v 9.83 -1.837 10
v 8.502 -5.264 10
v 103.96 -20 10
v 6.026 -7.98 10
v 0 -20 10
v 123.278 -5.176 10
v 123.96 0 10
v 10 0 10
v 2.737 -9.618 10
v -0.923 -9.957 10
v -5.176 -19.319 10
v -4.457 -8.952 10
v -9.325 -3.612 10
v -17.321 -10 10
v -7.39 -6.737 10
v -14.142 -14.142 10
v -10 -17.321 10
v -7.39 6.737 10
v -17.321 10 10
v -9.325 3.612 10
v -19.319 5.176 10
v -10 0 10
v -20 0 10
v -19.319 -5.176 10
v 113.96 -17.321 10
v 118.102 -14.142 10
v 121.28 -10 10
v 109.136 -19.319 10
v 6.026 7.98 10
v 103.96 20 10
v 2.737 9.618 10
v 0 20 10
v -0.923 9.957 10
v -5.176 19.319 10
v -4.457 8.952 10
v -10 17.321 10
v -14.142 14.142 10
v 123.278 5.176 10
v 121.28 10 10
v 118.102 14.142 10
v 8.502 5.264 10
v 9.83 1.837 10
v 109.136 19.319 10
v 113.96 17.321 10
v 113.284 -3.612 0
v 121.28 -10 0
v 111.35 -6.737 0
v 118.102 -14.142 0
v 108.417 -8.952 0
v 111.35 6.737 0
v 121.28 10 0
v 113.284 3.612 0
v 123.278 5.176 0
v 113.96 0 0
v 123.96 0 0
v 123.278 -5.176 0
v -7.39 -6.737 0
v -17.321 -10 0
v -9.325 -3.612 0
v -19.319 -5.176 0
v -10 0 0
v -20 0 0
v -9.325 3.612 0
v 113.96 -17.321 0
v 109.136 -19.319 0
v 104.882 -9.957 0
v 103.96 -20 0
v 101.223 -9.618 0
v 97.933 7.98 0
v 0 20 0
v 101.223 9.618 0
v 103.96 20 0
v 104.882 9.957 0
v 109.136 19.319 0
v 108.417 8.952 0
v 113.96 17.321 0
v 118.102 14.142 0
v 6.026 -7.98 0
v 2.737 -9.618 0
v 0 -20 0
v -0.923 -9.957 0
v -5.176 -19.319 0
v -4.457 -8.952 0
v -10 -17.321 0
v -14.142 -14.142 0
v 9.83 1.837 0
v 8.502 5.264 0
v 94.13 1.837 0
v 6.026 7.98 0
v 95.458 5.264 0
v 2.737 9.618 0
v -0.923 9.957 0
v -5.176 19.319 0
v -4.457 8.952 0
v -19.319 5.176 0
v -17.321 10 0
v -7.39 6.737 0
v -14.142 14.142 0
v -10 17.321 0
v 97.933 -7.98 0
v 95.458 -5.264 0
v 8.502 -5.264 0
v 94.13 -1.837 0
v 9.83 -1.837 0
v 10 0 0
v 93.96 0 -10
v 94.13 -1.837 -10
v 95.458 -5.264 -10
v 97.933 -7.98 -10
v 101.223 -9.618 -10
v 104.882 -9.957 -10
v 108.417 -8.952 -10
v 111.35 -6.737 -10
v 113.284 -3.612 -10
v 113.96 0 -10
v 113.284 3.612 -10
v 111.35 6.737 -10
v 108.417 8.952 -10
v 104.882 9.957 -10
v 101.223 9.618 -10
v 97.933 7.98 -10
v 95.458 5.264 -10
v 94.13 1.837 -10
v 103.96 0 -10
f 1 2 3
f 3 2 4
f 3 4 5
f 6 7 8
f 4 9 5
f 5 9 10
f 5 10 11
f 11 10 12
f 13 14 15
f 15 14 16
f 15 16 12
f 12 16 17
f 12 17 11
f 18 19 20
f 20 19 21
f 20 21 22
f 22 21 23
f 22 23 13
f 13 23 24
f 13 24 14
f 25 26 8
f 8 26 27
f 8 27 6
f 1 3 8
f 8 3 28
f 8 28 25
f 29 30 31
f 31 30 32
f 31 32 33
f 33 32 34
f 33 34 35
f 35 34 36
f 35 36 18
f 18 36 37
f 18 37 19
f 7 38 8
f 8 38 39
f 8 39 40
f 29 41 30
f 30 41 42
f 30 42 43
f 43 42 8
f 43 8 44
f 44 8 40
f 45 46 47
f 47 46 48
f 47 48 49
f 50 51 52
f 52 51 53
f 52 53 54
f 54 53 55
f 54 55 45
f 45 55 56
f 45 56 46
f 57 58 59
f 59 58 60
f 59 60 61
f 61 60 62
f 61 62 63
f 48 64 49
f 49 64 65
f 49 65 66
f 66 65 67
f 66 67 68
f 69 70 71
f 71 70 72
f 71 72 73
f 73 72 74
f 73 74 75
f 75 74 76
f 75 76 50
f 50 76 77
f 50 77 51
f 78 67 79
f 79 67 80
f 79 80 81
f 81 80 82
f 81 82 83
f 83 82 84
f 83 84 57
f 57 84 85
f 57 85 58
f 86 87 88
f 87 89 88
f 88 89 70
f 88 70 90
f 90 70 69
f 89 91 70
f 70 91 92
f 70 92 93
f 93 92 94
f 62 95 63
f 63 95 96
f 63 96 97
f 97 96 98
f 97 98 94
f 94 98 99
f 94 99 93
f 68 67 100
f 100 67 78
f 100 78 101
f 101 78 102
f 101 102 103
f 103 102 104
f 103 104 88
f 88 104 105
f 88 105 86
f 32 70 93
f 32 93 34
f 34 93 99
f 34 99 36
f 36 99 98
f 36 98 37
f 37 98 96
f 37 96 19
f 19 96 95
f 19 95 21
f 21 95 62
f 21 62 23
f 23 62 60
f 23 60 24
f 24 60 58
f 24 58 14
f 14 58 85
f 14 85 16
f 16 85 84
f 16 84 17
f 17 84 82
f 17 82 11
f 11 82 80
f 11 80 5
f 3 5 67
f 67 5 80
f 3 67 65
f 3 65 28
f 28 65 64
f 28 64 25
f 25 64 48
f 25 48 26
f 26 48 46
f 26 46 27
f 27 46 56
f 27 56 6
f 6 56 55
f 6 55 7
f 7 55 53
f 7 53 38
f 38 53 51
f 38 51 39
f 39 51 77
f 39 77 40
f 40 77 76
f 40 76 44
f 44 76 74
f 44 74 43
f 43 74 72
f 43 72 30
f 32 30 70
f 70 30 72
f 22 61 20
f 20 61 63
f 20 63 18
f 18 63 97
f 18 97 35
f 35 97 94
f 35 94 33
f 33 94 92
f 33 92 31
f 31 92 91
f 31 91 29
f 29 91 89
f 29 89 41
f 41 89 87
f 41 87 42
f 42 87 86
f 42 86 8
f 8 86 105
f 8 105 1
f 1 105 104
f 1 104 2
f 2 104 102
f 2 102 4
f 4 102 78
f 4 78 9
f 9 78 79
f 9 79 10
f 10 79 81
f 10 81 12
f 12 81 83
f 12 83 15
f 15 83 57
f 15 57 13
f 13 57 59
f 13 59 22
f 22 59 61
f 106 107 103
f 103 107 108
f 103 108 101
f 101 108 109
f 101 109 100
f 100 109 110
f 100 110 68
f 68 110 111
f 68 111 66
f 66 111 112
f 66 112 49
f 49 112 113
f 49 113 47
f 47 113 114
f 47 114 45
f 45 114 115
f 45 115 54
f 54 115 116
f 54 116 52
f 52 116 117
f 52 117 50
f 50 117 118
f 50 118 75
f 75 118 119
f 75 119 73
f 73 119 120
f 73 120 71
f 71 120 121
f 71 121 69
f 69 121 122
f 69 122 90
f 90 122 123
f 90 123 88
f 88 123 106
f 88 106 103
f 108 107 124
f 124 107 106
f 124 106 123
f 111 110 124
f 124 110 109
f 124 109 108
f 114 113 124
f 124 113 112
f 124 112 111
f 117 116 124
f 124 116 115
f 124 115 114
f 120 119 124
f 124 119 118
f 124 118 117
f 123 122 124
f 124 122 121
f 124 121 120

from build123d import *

# Parameters (mm, degrees)
SKETCH_1_R      = 10
EXTRUDE_1_DEPTH = 10
SKETCH_2_R      = 10
EXTRUDE_2_DEPTH = 10


with BuildPart() as part:
    # 스케치1 → 보스-돌출1 (new body)
    with BuildSketch(Plane.XY):
        with BuildLine():
            Line((0, 20), (103.959759811, 20))
            ThreePointArc((103.959759811, 20), (123.959759811, 0), (103.959759811, -20))
            Line((103.959759811, -20), (0, -20))
            ThreePointArc((0, -20), (-20, 0), (0, 20))
        make_face()
        Circle(SKETCH_1_R, mode=Mode.SUBTRACT)
    extrude(amount=EXTRUDE_1_DEPTH)

    # 스케치2 → 보스-돌출2 (add)
    with BuildSketch(Plane(origin=(0, 0, 0), x_dir=(-1, 0, 0), z_dir=(0, 0, -1))):
        with Locations(Location((-103.959759811, 0, 0), (0, 0, 180))):
            Circle(SKETCH_2_R)
    extrude(amount=EXTRUDE_2_DEPTH)


solid = part.part
